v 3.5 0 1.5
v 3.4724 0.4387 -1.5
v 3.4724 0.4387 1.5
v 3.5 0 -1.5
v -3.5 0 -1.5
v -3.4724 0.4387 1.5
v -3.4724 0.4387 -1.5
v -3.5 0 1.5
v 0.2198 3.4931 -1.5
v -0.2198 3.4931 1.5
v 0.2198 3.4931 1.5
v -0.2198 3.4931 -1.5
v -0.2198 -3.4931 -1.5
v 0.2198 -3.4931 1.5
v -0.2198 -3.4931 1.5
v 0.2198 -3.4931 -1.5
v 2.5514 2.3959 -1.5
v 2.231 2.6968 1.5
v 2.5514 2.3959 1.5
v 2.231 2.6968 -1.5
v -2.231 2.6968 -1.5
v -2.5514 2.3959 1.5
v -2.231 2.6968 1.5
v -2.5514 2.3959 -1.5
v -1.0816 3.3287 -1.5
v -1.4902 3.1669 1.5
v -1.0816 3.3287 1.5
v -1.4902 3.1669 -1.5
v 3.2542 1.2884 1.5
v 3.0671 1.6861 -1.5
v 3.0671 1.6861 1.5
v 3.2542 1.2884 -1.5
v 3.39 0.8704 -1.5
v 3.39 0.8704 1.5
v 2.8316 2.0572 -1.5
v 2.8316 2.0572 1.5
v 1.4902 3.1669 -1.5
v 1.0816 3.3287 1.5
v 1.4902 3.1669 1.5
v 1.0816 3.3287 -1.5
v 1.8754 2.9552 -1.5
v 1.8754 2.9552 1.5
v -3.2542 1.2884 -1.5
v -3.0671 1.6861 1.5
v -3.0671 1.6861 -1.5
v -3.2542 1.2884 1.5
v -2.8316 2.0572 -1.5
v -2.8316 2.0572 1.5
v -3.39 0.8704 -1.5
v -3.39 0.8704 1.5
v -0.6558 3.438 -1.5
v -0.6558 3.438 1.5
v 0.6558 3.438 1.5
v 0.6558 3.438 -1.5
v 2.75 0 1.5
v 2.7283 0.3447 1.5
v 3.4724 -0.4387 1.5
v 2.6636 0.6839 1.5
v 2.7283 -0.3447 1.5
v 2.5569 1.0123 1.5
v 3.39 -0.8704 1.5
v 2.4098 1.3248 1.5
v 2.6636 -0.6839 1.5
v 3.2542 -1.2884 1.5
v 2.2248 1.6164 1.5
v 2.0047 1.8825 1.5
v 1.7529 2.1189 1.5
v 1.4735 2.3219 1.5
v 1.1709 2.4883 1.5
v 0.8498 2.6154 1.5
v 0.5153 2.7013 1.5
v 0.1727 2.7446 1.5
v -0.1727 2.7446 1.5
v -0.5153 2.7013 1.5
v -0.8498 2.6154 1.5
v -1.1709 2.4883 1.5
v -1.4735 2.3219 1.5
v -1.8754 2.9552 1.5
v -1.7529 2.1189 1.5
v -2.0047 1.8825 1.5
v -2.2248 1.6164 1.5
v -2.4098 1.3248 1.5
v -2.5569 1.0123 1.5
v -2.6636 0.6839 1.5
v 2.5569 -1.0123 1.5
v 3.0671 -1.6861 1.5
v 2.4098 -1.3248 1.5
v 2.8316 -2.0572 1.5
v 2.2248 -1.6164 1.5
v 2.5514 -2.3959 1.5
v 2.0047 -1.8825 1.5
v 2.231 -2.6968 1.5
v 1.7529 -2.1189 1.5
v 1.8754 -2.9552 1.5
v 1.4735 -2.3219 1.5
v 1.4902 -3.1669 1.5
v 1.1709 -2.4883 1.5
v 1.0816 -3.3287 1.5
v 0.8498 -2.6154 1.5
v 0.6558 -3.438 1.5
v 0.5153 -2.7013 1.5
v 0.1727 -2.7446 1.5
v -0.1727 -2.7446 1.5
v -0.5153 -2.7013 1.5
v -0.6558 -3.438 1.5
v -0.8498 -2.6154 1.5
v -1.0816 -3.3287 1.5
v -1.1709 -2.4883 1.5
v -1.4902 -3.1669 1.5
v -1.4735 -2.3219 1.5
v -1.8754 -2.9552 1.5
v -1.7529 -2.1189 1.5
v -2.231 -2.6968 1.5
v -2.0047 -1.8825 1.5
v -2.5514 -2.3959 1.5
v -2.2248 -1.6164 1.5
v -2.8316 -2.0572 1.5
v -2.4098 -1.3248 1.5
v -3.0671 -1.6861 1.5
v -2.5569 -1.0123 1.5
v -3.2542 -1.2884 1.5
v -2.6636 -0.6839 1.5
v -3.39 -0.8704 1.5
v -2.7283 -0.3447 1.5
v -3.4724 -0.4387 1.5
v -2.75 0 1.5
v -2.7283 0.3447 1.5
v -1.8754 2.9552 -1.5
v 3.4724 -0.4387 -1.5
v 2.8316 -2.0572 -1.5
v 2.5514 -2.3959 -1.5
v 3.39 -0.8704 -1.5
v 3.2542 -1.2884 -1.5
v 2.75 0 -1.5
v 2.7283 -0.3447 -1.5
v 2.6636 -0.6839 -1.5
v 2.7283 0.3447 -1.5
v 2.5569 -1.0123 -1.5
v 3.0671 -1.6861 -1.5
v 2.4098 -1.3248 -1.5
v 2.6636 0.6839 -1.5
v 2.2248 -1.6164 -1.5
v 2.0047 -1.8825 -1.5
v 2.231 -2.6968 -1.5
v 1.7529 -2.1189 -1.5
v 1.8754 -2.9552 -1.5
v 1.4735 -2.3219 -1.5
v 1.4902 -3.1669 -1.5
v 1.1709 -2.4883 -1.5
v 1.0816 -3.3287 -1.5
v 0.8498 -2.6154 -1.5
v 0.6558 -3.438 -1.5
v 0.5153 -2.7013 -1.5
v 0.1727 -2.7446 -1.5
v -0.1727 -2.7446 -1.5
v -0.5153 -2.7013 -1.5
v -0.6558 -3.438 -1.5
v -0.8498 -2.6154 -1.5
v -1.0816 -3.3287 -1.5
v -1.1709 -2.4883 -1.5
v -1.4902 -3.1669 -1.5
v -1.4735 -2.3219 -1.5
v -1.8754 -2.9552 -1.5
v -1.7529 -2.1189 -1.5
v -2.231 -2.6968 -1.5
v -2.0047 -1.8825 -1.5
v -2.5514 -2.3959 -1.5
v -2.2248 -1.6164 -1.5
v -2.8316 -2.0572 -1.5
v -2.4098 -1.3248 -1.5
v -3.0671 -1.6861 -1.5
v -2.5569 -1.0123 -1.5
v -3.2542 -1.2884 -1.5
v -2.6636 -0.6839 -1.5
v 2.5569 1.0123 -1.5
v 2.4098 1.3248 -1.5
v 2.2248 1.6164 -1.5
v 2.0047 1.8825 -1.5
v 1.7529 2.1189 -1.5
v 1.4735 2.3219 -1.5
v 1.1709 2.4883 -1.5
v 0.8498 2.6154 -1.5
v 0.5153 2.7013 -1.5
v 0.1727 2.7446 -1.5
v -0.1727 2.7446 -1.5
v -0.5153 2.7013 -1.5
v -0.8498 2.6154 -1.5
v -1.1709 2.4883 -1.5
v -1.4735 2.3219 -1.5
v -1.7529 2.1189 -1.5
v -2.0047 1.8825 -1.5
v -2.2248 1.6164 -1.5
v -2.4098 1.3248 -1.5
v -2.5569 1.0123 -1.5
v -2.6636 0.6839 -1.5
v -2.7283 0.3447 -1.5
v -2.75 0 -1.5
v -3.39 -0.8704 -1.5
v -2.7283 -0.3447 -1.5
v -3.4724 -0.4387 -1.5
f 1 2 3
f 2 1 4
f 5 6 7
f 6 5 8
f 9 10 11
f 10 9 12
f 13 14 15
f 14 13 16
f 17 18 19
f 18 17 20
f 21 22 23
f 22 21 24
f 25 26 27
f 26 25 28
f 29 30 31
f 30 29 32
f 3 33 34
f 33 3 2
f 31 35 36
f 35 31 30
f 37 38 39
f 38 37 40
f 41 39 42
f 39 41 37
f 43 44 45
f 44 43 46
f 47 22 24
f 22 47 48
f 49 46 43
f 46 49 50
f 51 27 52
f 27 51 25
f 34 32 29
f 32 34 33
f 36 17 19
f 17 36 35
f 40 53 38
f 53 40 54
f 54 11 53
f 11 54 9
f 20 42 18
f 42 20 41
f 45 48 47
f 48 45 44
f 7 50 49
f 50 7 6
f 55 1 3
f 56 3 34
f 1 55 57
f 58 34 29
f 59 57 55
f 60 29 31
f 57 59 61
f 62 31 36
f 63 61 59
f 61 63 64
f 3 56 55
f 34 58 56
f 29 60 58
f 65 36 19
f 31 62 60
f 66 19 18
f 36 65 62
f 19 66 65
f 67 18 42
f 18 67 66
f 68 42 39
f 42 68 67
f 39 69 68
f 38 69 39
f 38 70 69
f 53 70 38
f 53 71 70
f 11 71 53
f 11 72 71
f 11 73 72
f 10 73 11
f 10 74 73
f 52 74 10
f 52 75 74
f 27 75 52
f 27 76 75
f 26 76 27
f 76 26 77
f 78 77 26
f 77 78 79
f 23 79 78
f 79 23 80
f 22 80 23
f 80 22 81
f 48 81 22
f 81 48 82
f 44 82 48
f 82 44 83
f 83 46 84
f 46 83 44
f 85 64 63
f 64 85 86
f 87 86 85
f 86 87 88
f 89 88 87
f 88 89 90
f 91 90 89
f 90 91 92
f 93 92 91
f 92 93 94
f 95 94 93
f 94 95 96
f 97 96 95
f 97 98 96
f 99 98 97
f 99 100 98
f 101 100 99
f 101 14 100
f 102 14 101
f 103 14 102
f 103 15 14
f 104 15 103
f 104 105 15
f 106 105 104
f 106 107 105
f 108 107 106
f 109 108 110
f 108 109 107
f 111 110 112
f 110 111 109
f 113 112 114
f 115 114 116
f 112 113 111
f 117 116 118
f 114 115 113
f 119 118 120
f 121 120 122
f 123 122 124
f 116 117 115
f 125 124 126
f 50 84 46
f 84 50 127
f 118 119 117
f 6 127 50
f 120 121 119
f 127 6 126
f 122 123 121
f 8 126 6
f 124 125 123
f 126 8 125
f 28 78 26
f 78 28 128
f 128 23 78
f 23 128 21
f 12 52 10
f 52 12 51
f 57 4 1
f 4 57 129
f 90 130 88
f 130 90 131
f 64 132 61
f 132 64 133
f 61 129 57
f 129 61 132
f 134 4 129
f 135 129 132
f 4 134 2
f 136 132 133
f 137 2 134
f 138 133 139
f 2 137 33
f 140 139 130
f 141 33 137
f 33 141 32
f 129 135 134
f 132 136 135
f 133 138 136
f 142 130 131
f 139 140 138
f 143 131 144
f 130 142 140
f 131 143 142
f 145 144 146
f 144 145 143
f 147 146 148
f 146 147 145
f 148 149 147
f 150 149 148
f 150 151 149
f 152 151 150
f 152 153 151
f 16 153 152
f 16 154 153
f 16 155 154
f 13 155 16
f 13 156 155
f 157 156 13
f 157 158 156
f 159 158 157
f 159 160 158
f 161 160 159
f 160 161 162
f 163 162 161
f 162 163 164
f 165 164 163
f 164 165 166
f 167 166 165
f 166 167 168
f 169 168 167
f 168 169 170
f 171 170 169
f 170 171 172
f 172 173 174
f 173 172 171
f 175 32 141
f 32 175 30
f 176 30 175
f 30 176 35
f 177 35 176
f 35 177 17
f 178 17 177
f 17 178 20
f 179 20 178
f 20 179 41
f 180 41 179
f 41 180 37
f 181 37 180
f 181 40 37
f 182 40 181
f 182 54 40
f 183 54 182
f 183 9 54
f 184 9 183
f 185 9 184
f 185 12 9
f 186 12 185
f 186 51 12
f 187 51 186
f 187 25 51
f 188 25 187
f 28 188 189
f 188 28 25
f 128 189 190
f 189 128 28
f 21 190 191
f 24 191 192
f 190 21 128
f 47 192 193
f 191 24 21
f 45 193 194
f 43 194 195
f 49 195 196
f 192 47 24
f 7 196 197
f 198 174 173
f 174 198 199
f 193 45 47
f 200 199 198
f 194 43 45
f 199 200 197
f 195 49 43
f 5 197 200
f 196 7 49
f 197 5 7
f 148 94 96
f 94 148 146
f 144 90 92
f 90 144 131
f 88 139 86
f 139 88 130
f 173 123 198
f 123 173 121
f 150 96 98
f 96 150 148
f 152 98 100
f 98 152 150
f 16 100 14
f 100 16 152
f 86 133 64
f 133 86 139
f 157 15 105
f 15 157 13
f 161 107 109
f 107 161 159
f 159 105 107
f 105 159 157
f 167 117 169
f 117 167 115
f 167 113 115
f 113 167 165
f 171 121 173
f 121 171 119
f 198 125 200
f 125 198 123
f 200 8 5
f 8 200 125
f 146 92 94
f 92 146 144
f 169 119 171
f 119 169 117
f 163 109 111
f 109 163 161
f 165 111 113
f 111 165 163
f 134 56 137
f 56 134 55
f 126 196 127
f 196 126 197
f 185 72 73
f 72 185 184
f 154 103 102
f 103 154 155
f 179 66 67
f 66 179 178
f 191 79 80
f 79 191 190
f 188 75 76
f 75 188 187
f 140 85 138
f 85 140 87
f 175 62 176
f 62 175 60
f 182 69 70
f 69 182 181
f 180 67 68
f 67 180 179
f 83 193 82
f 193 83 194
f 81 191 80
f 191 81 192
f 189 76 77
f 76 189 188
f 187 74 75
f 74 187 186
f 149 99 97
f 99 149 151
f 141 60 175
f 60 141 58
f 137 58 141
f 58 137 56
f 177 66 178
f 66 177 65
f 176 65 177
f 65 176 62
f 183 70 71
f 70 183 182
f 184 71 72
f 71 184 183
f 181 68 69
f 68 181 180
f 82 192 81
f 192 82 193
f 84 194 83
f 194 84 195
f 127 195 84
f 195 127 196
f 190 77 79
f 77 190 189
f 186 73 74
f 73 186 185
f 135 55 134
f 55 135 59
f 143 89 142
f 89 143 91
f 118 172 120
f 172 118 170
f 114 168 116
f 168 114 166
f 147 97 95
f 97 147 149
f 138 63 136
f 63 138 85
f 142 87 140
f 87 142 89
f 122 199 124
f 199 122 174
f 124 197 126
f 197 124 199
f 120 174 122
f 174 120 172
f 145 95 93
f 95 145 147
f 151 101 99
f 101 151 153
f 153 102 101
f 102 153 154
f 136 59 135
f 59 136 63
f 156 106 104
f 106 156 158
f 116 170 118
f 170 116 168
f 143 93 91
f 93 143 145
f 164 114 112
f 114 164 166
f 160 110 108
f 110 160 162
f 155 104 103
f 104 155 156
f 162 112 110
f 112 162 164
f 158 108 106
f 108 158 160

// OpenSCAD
$fn = 50;


difference() {
	union() {
		translate(v = [0, 0, -1.5000000000]) {
			cylinder(h = 3, r = 3.5000000000);
		}
	}
	union() {
		translate(v = [0, 0, -100.0000000000]) {
			cylinder(h = 200, r = 2.7500000000);
		}
	}
}
